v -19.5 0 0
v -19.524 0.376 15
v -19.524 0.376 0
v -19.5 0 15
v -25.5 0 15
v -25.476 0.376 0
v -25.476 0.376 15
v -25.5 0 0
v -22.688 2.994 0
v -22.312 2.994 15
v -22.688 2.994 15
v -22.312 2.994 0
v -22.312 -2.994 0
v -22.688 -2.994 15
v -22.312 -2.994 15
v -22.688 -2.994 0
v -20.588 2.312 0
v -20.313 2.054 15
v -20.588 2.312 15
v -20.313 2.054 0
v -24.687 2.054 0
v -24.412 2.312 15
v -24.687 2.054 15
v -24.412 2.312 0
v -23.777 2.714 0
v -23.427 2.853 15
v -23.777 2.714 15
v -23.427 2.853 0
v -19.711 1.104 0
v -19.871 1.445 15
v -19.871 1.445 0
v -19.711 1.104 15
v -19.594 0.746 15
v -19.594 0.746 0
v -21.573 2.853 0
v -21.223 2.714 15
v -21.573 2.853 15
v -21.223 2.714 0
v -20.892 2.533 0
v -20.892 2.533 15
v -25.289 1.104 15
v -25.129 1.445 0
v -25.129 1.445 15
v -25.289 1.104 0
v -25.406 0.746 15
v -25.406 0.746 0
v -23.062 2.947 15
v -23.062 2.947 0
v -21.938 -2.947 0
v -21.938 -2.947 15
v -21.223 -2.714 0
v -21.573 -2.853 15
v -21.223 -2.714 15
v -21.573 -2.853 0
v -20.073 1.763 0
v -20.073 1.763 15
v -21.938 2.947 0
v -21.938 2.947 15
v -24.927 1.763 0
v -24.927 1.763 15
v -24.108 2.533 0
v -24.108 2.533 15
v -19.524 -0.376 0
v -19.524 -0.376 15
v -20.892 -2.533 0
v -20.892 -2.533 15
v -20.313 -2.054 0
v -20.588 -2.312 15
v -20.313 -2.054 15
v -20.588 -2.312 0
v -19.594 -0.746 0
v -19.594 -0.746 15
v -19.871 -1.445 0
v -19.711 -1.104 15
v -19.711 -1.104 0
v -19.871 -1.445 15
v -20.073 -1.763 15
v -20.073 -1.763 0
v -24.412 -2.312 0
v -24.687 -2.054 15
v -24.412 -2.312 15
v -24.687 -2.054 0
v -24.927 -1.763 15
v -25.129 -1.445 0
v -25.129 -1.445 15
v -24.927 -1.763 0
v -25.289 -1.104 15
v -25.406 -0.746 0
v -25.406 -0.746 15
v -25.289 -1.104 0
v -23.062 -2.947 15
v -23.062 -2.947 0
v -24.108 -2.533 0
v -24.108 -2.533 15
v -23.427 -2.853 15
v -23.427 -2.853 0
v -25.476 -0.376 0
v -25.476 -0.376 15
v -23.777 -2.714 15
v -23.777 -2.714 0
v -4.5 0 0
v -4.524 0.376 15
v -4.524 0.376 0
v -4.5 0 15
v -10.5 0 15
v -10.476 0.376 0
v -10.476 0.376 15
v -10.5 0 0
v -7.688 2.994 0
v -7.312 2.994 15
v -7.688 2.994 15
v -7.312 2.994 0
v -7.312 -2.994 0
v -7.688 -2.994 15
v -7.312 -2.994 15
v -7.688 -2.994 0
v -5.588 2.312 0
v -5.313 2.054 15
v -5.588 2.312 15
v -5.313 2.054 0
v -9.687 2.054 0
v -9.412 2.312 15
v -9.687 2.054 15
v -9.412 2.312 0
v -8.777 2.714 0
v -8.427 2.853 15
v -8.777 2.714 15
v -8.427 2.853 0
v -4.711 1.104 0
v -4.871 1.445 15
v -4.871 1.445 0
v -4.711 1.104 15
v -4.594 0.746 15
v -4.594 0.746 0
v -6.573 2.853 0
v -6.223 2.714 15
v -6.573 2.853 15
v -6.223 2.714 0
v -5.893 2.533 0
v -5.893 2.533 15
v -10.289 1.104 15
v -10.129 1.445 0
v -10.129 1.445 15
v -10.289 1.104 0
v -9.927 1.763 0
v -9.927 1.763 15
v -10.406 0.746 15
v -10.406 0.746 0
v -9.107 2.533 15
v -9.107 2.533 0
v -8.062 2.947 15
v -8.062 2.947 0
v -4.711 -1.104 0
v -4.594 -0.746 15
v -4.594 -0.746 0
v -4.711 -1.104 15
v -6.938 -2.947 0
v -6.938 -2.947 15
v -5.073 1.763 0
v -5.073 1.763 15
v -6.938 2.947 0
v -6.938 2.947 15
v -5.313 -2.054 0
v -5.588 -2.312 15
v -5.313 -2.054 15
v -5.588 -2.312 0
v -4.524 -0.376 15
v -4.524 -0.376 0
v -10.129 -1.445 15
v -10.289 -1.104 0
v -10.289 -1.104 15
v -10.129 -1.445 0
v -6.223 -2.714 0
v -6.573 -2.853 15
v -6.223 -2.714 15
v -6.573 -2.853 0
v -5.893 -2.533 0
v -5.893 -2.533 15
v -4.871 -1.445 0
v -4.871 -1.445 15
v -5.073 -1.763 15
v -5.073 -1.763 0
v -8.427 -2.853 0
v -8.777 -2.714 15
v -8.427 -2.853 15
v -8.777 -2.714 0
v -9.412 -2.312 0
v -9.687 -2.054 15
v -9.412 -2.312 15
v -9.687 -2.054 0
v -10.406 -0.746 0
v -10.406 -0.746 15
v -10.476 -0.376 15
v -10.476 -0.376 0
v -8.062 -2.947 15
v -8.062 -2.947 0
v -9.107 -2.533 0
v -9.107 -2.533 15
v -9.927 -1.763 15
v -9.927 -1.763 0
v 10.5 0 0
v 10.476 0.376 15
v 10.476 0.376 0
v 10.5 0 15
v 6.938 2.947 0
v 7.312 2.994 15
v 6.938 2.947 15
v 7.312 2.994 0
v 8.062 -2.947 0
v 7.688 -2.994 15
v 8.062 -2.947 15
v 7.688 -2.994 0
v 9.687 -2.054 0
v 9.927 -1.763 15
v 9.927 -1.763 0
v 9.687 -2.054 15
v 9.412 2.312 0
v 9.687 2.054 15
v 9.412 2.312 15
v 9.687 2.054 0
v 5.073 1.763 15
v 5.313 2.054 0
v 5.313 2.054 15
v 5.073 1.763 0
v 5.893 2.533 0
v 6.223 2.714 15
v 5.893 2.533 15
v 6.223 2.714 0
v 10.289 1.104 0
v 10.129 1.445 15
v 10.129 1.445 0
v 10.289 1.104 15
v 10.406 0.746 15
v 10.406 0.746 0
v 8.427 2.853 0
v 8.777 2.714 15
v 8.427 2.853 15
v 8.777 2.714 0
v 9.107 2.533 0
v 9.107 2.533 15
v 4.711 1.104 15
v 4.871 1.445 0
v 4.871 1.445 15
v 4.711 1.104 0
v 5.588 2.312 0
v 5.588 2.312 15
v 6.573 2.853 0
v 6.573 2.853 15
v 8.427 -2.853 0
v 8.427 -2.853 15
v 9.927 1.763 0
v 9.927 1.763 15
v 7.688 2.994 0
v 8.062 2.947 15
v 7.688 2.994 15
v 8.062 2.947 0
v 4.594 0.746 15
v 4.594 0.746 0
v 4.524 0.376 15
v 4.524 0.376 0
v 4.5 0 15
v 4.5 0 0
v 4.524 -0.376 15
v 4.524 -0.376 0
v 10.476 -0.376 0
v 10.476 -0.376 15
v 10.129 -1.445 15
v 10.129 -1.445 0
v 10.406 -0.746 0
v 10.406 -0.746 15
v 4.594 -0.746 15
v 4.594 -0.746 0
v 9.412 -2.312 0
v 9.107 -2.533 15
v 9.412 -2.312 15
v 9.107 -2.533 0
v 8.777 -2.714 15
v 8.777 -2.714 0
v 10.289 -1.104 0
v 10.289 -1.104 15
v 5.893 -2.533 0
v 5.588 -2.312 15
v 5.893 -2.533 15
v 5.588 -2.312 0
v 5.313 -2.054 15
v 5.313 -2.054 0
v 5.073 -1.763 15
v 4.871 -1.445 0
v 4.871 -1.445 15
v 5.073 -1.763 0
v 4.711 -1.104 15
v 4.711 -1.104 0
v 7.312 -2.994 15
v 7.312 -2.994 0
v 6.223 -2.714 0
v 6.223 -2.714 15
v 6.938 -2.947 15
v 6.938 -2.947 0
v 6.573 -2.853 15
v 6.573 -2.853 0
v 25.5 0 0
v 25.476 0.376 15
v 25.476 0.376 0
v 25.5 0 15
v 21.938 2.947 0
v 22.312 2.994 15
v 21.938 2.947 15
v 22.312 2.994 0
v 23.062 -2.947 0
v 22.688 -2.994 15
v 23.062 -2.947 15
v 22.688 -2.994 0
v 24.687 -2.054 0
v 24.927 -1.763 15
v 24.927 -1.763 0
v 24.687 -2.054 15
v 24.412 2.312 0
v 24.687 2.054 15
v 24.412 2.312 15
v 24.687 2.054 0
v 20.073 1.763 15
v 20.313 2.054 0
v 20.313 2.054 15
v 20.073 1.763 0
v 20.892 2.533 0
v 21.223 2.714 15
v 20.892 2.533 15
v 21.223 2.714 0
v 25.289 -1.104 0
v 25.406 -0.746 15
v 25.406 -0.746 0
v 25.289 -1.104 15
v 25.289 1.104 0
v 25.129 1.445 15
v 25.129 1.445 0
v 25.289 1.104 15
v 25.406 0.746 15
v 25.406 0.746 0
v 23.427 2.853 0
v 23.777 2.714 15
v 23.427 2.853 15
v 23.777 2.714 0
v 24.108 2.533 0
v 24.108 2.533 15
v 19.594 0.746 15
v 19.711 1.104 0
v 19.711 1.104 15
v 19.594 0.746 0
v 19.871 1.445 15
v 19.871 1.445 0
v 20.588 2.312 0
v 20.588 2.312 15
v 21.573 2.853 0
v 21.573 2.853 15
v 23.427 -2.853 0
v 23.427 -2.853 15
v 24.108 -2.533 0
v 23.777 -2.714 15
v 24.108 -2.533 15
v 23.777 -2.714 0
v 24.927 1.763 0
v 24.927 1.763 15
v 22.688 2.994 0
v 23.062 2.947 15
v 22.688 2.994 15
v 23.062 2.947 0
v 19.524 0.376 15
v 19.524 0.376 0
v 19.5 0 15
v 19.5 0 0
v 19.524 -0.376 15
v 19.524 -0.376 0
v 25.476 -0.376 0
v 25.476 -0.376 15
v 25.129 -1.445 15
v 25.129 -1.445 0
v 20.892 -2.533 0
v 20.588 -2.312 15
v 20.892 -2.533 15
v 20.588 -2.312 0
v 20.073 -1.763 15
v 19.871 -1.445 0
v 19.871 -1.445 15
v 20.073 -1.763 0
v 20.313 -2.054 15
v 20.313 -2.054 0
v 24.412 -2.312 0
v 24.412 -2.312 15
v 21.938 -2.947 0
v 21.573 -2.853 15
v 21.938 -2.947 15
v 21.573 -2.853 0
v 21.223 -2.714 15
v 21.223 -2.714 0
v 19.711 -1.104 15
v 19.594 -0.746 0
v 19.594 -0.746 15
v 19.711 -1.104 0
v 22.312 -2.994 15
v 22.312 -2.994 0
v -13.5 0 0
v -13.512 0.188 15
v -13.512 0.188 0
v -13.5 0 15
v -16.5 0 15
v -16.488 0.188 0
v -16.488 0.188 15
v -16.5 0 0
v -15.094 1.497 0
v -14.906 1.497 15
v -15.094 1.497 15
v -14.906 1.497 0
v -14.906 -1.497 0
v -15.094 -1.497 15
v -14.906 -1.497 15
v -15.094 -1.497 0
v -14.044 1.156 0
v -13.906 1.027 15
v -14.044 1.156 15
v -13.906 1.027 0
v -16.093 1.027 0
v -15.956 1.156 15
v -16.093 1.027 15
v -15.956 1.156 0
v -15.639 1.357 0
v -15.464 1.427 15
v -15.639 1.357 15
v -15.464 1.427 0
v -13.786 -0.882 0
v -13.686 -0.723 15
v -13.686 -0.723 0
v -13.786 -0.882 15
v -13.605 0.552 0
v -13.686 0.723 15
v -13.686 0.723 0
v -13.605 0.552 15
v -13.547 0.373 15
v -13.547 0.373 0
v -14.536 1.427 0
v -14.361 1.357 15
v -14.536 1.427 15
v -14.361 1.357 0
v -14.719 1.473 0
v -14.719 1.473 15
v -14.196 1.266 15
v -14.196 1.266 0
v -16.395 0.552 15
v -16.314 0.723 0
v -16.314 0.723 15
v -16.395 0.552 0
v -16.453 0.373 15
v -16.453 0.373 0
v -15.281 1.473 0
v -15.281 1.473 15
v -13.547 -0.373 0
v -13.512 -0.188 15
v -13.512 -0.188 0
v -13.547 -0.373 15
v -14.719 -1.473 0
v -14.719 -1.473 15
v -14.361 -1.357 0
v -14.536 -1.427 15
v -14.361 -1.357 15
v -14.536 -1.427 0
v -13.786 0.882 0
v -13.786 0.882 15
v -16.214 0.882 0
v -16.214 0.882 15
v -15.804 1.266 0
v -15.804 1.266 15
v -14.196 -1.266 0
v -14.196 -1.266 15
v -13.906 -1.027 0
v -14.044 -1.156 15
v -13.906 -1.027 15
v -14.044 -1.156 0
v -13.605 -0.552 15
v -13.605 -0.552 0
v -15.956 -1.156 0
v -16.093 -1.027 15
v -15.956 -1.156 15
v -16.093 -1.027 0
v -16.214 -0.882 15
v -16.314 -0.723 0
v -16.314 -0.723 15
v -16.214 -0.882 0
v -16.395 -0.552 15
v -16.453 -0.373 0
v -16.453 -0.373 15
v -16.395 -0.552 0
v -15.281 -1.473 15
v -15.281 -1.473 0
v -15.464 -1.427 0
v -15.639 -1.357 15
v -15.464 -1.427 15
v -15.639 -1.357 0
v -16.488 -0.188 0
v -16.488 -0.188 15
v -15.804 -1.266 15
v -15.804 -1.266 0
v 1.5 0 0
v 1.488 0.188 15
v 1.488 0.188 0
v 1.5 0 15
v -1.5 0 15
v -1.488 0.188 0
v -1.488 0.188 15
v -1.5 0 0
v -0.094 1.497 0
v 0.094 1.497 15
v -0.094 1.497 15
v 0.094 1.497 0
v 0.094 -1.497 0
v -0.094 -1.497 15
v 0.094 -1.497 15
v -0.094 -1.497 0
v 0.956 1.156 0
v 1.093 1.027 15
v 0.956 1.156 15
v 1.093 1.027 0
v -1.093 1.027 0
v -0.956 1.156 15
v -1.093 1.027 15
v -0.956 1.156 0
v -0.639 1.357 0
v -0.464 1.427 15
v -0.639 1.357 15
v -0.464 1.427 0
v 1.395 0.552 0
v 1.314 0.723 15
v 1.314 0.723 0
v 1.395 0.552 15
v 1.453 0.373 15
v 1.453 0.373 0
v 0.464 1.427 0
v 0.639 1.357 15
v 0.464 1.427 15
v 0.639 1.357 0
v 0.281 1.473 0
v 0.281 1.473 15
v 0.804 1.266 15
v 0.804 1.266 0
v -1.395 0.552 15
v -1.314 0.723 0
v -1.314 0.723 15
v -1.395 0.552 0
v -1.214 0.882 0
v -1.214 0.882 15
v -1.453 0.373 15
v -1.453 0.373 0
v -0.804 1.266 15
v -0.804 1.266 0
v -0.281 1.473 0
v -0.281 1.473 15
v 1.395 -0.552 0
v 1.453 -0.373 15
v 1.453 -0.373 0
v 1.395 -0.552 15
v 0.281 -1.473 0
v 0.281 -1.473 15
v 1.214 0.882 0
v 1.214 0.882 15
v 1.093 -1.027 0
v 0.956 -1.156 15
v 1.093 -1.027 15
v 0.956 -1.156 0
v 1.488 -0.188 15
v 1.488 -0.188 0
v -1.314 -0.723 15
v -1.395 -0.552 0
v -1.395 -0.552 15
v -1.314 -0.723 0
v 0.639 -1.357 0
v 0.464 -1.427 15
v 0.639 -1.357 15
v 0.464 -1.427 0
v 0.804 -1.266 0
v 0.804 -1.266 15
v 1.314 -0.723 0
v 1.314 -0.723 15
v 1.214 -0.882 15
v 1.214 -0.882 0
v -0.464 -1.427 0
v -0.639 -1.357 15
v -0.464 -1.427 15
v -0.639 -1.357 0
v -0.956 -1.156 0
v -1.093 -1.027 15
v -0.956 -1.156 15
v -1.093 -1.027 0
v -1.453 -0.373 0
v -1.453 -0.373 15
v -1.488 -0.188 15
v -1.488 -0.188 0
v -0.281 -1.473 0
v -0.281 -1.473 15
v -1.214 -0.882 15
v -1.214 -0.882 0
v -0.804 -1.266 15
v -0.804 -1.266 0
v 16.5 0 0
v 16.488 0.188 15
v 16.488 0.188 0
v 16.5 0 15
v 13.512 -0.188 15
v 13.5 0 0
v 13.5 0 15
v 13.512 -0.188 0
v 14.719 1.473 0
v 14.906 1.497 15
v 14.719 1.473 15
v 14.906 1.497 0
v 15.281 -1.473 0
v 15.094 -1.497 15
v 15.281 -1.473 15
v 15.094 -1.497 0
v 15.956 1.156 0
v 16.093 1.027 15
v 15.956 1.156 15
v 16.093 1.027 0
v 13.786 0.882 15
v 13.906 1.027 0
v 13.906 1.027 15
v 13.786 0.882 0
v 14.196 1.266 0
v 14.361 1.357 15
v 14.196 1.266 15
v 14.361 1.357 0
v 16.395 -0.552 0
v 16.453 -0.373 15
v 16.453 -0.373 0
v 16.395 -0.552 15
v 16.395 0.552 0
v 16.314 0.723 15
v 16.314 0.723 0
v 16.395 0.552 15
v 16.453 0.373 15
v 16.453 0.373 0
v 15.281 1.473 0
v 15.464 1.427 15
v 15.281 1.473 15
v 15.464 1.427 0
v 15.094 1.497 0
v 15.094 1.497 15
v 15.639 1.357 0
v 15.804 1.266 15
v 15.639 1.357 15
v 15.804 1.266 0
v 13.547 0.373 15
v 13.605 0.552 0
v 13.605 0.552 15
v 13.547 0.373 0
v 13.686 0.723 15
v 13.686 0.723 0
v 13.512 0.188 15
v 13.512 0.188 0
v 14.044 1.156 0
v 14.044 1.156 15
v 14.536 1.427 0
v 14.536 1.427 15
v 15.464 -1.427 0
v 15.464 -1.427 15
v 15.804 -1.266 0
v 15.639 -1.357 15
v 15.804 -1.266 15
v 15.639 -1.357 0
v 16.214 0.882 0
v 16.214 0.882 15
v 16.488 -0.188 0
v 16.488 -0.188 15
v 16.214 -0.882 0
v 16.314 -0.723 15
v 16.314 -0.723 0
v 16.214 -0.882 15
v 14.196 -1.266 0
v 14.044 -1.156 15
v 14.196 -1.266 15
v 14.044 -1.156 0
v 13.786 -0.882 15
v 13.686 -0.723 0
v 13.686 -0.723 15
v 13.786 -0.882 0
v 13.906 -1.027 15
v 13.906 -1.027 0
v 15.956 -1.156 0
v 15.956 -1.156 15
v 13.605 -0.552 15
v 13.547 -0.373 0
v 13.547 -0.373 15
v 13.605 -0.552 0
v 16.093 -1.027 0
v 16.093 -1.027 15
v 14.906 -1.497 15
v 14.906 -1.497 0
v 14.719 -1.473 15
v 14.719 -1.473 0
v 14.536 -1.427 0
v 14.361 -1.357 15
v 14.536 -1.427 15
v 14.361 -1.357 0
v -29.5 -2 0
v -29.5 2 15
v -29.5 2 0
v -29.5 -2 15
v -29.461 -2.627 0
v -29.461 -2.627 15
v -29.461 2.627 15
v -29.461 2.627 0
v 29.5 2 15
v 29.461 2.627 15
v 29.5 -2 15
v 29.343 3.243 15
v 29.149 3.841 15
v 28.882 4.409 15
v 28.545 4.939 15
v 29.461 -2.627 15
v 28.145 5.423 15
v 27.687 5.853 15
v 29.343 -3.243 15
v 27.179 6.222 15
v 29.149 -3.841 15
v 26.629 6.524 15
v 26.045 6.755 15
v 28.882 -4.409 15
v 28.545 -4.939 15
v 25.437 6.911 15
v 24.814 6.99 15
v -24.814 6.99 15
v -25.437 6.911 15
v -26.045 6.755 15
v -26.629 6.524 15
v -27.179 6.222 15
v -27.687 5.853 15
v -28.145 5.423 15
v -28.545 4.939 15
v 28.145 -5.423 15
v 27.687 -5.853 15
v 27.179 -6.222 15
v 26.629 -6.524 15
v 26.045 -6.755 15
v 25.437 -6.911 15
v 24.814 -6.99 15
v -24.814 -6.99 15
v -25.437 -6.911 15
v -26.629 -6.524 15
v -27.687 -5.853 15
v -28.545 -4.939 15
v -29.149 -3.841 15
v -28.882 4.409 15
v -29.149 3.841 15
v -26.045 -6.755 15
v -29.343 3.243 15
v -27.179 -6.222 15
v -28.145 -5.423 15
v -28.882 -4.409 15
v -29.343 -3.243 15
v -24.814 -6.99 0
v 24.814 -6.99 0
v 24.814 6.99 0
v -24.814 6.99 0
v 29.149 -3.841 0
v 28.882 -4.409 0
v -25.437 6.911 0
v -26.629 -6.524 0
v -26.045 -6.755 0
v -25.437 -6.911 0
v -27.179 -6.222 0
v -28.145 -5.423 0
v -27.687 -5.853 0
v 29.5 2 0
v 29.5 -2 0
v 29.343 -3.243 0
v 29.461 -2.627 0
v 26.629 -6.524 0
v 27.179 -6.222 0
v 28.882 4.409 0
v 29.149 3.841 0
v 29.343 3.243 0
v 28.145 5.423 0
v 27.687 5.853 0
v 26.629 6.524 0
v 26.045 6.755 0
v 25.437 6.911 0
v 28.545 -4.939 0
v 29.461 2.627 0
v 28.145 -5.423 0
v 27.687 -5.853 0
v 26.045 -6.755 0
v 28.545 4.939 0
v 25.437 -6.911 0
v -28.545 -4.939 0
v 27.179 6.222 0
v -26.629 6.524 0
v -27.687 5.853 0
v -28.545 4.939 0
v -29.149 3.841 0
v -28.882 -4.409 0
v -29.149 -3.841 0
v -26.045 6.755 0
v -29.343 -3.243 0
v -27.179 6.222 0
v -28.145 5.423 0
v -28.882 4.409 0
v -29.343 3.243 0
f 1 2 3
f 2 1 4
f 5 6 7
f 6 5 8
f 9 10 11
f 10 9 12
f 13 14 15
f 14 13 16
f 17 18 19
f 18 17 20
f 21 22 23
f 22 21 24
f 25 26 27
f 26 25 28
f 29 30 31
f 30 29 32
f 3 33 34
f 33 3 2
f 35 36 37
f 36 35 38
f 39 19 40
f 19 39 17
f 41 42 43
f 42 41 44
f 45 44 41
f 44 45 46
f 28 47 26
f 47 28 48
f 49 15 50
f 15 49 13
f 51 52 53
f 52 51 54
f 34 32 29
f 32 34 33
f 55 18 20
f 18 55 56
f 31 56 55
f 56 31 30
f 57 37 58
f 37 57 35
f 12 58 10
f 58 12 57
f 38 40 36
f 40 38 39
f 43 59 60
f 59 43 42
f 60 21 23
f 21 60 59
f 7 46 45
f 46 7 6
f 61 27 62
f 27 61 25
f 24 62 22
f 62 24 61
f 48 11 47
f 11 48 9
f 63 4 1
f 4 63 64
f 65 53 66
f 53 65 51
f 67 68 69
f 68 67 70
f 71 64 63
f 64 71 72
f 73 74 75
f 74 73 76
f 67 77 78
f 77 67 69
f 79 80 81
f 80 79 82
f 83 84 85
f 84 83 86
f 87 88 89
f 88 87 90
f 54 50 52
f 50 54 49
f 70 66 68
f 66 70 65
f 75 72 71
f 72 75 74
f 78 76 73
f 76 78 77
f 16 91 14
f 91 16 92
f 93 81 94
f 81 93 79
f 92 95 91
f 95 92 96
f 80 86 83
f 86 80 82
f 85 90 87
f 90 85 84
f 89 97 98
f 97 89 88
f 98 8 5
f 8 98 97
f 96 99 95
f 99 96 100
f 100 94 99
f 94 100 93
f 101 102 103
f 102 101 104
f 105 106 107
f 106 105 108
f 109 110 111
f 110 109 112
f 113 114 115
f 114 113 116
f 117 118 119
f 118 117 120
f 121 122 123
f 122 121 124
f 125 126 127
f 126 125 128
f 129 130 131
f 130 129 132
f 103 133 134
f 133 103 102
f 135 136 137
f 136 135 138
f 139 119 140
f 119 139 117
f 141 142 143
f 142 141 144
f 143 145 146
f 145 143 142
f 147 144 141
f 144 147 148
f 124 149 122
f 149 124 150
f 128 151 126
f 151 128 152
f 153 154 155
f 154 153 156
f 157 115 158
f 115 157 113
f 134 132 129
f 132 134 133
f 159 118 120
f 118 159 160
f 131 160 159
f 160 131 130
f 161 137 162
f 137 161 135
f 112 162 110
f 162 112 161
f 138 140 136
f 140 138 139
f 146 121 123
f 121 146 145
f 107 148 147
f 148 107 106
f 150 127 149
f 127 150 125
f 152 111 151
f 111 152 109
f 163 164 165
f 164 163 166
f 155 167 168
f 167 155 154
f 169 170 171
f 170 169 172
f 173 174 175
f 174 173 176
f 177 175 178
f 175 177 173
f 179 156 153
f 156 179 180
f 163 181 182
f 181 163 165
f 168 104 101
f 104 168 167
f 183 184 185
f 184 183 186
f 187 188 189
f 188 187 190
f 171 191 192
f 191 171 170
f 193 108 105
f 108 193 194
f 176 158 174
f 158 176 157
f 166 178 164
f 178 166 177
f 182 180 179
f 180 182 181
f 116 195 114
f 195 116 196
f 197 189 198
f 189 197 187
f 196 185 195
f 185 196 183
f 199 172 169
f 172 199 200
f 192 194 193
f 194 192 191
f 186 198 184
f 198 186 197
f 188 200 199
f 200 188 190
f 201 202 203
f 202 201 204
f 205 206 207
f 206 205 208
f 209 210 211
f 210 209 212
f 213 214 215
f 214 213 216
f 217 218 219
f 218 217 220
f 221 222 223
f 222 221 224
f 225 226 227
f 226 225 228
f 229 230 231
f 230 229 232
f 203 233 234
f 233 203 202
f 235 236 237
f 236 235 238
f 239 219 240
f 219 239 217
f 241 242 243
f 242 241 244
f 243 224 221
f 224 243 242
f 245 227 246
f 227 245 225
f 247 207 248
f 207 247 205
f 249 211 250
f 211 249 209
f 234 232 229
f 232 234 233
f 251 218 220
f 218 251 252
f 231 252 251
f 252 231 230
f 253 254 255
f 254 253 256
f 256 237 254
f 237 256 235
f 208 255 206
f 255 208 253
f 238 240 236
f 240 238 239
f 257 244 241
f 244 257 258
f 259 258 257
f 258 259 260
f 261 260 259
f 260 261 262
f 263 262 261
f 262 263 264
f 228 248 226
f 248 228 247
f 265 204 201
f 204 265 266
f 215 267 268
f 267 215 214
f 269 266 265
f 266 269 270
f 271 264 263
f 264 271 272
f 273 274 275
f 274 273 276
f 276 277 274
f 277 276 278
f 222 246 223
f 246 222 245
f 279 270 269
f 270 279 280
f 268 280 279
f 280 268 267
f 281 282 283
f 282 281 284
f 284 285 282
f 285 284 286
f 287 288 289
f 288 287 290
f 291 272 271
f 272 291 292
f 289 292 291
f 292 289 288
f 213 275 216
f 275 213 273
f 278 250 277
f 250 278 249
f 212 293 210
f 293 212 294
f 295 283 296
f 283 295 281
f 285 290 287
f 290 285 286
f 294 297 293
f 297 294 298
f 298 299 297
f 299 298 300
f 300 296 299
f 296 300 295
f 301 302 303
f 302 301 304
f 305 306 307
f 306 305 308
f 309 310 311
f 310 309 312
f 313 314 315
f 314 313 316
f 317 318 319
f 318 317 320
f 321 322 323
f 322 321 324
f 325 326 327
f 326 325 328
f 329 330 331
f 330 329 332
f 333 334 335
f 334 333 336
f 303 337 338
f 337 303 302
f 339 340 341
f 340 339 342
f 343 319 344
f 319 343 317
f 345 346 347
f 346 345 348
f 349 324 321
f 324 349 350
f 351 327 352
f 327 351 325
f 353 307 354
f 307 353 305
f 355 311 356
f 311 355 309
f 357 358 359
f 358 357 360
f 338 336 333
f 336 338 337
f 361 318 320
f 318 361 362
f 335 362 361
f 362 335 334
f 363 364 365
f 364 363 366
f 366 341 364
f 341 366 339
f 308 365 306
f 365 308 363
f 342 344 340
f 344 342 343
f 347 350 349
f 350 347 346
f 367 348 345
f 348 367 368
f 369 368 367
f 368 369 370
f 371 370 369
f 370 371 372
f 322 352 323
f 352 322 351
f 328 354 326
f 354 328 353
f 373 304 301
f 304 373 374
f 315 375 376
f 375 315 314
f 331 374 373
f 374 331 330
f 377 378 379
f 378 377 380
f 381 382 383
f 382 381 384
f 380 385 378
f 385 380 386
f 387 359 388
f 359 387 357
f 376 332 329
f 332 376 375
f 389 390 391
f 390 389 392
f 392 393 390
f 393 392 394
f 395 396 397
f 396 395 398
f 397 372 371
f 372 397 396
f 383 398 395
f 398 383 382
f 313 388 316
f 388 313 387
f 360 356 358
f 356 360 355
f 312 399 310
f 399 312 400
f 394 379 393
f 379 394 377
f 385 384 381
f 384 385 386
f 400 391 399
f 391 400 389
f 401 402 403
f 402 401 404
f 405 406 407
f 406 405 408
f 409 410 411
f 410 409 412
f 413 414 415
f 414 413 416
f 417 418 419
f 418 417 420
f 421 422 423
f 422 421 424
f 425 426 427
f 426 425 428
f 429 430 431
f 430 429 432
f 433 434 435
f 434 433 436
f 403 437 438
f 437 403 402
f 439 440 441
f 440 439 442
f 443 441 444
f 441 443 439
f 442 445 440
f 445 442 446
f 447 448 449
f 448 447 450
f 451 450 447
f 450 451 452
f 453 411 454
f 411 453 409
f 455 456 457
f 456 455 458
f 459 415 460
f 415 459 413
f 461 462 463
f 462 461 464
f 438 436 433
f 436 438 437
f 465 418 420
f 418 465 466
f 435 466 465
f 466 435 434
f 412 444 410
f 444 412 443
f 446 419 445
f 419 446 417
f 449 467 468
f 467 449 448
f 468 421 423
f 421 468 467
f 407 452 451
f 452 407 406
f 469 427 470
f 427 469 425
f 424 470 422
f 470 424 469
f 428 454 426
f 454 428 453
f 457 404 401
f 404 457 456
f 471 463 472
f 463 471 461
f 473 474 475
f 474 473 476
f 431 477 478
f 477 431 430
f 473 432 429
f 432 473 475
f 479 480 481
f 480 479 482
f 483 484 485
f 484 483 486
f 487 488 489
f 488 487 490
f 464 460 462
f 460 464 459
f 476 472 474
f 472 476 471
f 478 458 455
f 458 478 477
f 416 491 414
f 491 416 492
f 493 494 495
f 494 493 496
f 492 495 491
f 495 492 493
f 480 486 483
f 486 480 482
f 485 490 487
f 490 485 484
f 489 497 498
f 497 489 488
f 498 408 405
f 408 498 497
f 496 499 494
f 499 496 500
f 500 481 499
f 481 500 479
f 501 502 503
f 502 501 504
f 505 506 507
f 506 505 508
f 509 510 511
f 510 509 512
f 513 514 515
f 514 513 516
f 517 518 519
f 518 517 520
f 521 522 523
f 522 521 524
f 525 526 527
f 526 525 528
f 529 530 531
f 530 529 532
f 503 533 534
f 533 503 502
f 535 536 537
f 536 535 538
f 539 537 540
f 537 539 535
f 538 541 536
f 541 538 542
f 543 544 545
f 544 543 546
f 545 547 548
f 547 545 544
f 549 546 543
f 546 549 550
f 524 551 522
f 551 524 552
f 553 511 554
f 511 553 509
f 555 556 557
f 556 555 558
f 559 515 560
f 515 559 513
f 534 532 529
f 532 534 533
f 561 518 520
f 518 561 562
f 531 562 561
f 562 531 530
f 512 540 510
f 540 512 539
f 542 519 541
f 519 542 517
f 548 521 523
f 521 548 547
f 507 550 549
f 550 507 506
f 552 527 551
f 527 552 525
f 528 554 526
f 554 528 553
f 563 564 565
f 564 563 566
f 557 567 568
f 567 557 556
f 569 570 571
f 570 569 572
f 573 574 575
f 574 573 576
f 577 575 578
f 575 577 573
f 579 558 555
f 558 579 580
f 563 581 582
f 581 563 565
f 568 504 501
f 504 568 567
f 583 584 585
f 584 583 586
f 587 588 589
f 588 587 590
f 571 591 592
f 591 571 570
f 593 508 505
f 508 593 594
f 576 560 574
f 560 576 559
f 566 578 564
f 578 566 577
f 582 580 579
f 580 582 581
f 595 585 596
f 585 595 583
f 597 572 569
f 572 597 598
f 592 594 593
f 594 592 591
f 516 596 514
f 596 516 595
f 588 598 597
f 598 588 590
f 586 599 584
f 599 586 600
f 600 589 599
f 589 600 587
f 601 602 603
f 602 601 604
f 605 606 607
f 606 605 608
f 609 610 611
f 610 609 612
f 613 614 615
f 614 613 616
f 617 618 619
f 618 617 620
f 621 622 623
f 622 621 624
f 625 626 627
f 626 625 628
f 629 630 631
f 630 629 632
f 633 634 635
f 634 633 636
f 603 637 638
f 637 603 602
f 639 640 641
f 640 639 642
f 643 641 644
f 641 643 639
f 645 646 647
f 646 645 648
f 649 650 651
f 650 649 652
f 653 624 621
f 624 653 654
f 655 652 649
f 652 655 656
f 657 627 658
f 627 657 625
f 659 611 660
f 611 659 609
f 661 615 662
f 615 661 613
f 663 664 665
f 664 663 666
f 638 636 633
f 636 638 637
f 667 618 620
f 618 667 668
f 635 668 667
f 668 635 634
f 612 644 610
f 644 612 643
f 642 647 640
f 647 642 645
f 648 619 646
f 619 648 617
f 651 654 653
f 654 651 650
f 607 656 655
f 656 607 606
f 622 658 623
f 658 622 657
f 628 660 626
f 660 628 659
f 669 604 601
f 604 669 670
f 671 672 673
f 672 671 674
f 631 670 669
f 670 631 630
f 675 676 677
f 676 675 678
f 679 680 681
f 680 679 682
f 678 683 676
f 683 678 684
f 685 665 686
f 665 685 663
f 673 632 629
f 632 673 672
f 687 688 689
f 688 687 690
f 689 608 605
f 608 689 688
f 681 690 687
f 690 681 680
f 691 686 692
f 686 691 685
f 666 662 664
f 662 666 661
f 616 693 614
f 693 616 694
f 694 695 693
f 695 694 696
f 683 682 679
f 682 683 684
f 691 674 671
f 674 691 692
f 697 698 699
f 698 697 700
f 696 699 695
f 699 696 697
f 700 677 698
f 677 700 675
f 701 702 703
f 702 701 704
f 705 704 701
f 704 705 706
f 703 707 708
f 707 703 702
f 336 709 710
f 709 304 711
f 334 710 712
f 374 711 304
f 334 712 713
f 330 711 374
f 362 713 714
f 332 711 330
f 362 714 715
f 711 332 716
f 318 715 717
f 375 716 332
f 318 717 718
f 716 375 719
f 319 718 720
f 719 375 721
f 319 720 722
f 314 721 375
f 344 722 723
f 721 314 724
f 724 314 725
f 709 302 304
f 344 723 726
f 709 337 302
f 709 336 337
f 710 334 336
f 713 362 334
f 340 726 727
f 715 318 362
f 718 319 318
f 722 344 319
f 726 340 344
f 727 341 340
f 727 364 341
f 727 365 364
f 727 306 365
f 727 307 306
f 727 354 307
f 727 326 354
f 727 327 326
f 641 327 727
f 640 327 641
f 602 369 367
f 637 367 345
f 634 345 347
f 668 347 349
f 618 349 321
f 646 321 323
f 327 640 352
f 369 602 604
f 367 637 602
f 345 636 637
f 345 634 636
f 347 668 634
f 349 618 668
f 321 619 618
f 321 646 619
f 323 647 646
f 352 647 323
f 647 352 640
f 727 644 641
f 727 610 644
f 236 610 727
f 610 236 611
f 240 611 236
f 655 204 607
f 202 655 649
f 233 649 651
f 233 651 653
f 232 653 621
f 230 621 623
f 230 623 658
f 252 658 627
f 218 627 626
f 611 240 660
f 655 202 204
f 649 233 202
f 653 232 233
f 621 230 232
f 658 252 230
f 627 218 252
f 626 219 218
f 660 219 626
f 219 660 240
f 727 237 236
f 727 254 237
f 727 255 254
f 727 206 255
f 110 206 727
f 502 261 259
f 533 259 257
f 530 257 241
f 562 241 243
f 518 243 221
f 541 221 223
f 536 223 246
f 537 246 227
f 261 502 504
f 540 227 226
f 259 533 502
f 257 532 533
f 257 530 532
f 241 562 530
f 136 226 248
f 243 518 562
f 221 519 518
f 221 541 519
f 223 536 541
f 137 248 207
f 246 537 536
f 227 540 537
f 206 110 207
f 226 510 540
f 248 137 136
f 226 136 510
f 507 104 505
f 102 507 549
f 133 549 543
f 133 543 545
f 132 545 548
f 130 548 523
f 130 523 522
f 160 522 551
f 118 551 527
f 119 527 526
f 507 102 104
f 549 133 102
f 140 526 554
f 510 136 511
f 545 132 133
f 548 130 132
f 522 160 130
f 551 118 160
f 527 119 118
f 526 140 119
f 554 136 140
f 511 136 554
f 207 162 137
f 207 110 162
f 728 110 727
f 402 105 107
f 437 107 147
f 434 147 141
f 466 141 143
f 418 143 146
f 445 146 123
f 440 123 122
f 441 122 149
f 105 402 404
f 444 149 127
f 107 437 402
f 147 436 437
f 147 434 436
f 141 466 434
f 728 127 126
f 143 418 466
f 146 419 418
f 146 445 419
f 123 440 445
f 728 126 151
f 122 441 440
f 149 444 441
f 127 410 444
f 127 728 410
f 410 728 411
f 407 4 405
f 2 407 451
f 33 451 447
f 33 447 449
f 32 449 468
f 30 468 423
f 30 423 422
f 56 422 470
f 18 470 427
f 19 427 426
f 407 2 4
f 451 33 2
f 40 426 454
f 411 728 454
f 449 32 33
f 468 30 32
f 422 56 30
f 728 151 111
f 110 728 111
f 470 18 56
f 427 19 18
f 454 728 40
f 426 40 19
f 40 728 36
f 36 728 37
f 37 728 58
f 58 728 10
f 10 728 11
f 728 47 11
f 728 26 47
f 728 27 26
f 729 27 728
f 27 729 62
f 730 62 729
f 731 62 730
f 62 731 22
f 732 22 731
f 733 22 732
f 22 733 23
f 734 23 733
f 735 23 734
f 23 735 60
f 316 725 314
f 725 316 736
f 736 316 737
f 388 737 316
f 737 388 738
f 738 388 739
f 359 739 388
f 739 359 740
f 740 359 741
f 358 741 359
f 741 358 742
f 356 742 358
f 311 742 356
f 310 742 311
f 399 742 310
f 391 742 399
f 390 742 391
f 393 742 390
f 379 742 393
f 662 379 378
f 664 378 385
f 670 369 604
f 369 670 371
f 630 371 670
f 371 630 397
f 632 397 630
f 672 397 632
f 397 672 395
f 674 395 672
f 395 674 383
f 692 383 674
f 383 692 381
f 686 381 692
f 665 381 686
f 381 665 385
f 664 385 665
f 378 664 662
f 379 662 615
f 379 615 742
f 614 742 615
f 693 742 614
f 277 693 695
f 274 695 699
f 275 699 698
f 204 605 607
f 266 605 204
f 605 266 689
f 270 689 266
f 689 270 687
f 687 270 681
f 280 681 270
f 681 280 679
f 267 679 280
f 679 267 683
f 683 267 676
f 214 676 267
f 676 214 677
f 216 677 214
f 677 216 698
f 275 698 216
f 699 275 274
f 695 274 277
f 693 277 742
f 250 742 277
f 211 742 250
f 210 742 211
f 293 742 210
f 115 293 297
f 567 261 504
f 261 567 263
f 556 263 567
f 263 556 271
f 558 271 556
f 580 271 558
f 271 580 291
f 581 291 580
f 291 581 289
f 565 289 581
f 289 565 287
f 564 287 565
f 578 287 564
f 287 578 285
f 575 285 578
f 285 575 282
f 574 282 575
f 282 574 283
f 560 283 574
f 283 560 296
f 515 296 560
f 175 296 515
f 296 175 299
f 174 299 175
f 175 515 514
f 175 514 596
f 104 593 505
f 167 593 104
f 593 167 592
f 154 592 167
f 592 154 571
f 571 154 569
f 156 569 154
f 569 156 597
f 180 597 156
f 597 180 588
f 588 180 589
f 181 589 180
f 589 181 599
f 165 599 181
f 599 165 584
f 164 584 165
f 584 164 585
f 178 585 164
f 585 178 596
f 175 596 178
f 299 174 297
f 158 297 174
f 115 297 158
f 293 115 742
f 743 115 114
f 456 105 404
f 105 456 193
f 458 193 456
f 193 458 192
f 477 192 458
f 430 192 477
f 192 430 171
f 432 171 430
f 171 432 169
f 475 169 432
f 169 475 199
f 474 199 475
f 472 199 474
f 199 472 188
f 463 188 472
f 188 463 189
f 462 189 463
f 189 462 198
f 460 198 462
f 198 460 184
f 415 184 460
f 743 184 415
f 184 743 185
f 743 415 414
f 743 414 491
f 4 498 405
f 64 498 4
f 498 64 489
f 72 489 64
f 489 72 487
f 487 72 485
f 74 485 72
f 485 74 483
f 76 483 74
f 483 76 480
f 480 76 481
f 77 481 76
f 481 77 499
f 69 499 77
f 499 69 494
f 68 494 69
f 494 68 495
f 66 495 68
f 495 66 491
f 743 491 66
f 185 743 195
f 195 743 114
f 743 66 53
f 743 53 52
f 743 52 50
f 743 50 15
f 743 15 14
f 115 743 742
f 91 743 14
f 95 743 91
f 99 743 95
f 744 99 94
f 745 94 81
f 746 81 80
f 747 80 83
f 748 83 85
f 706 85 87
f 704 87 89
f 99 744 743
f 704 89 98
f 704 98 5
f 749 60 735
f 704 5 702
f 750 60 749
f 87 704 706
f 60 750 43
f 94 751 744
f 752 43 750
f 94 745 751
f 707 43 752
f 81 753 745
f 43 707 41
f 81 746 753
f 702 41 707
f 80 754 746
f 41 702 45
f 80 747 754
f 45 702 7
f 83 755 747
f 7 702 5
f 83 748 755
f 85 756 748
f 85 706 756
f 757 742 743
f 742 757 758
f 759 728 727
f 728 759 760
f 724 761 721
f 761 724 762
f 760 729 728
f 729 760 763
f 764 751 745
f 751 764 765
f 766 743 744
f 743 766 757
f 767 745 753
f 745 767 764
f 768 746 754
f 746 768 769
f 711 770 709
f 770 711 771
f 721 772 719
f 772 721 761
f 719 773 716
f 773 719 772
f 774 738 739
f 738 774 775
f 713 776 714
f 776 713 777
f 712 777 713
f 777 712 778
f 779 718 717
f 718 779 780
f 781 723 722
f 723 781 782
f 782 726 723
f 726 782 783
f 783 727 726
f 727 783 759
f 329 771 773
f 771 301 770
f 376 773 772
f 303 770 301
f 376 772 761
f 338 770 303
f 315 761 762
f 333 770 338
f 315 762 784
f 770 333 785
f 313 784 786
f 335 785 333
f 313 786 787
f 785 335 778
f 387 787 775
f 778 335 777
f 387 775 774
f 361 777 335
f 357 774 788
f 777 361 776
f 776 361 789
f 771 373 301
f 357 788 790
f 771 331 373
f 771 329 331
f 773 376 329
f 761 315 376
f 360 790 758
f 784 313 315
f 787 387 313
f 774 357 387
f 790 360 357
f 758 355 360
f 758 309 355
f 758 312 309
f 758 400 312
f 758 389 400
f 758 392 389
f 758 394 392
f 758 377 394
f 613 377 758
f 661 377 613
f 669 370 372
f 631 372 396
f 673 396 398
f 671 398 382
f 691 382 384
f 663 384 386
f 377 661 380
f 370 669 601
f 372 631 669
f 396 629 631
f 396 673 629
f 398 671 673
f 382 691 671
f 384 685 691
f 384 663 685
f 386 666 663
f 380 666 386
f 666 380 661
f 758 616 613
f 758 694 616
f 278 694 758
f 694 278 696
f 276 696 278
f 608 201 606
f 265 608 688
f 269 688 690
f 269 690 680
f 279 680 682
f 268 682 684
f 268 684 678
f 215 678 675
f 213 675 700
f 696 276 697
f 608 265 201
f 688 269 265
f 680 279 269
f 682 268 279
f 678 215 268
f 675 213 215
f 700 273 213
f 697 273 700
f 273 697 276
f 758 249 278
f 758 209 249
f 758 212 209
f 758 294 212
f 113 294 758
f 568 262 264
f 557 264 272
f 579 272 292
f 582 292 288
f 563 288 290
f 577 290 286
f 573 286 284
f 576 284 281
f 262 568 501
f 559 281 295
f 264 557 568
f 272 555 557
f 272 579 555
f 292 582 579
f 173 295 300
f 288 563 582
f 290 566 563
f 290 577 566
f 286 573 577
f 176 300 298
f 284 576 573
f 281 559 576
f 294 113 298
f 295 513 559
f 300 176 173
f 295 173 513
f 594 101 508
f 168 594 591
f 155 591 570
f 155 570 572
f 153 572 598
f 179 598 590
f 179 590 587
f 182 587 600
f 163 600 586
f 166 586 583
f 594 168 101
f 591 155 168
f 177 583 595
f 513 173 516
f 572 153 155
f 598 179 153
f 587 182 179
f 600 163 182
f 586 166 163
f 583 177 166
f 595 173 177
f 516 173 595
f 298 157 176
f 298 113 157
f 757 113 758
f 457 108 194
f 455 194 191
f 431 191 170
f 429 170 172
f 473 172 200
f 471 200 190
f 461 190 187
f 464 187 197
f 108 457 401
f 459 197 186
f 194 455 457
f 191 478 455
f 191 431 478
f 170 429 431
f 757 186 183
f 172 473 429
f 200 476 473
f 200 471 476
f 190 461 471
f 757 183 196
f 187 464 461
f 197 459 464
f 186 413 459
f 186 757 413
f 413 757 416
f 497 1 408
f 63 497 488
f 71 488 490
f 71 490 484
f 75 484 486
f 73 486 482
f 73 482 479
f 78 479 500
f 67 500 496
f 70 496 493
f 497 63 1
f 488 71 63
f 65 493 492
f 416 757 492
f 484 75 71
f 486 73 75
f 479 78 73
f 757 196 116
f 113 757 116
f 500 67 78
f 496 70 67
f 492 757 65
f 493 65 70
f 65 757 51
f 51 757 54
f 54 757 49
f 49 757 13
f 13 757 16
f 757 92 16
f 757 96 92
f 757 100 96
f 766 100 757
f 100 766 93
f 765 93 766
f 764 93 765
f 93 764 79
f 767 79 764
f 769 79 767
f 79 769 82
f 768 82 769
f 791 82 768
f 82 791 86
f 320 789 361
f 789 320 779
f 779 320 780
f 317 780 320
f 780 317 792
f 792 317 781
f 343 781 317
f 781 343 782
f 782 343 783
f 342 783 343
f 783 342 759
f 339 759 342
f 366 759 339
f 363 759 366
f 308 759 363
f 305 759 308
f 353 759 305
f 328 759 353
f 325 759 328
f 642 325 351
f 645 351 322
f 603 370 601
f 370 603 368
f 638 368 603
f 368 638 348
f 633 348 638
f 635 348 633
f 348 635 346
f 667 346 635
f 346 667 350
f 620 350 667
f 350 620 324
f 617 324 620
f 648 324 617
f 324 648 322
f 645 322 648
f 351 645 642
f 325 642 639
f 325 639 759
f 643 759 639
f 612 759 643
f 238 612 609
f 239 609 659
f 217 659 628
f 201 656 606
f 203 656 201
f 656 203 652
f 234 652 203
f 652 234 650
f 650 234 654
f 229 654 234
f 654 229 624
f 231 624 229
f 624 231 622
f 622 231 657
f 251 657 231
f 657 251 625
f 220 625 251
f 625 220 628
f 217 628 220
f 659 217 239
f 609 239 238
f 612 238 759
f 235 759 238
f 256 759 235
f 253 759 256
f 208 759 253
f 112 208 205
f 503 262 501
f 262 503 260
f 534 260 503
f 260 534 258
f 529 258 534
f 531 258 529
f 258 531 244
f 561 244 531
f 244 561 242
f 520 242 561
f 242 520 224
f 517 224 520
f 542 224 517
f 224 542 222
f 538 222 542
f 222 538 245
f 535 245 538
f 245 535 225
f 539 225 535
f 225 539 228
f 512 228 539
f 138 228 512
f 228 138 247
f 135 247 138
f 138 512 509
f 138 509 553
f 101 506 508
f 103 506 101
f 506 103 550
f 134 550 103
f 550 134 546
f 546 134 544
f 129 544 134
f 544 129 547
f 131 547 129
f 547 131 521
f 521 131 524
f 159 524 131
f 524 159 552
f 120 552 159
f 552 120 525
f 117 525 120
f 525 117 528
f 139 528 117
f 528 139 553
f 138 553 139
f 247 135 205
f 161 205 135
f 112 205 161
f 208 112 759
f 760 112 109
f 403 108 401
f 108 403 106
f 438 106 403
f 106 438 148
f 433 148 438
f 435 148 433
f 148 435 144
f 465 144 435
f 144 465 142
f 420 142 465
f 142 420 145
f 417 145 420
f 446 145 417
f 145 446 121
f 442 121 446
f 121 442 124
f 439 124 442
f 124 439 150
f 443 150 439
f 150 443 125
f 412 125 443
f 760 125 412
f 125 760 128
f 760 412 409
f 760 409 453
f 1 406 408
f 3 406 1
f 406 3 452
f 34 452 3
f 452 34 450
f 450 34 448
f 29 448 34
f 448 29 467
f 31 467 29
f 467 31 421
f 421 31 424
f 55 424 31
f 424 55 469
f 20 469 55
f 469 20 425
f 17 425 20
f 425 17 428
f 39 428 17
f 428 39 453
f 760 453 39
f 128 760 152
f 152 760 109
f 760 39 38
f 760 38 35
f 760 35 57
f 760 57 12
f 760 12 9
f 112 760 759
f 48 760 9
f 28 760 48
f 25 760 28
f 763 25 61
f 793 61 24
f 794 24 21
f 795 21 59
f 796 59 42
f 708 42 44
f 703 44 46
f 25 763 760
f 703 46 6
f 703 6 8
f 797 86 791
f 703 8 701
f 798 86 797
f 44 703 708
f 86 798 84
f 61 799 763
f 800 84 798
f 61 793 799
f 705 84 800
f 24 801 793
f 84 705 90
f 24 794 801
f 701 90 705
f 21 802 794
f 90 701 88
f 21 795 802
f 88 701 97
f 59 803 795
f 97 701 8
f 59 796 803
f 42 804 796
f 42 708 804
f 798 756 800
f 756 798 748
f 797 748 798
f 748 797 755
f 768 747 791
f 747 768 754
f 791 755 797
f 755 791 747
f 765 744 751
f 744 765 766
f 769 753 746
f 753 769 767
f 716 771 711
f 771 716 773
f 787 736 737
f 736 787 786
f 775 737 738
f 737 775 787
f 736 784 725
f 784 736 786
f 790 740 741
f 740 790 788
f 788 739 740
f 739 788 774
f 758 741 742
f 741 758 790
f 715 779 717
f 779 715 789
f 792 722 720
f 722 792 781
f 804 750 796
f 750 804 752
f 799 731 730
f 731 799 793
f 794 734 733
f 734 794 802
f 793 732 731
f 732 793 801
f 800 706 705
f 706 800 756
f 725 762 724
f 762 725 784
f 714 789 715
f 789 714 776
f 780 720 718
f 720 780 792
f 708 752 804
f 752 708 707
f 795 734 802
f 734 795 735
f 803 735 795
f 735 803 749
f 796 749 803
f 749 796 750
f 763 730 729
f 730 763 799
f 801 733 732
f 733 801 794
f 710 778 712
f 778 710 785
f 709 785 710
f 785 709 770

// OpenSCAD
$fn = 50;


difference() {
	union() {
		translate(v = [0, 0, 0]) {
			rotate(a = [0, 0, 0]) {
				hull() {
					translate(v = [-24.5000000000, 2.0000000000, 0]) {
						rotate(a = [0, 0, 0]) {
							translate(v = [0, 0, 0]) {
								rotate(a = [0, 0, 0]) {
									cylinder(h = 15, r = 5);
								}
							}
						}
					}
					translate(v = [24.5000000000, 2.0000000000, 0]) {
						rotate(a = [0, 0, 0]) {
							translate(v = [0, 0, 0]) {
								rotate(a = [0, 0, 0]) {
									cylinder(h = 15, r = 5);
								}
							}
						}
					}
					translate(v = [-24.5000000000, -2.0000000000, 0]) {
						rotate(a = [0, 0, 0]) {
							translate(v = [0, 0, 0]) {
								rotate(a = [0, 0, 0]) {
									cylinder(h = 15, r = 5);
								}
							}
						}
					}
					translate(v = [24.5000000000, -2.0000000000, 0]) {
						rotate(a = [0, 0, 0]) {
							translate(v = [0, 0, 0]) {
								rotate(a = [0, 0, 0]) {
									cylinder(h = 15, r = 5);
								}
							}
						}
					}
				}
			}
		}
	}
	union() {
		translate(v = [-22.5000000000, 0.0000000000, 0]) {
			rotate(a = [0, 0, 0]) {
				translate(v = [0, 0, -50]) {
					rotate(a = [0, 0, 0]) {
						cylinder(h = 100, r = 3.0000000000);
					}
				}
			}
		}
		translate(v = [-7.5000000000, 0.0000000000, 0]) {
			rotate(a = [0, 0, 0]) {
				translate(v = [0, 0, -50]) {
					rotate(a = [0, 0, 0]) {
						cylinder(h = 100, r = 3.0000000000);
					}
				}
			}
		}
		translate(v = [7.5000000000, 0.0000000000, 0]) {
			rotate(a = [0, 0, 0]) {
				translate(v = [0, 0, -50]) {
					rotate(a = [0, 0, 0]) {
						cylinder(h = 100, r = 3.0000000000);
					}
				}
			}
		}
		translate(v = [22.5000000000, 0.0000000000, 0]) {
			rotate(a = [0, 0, 0]) {
				translate(v = [0, 0, -50]) {
					rotate(a = [0, 0, 0]) {
						cylinder(h = 100, r = 3.0000000000);
					}
				}
			}
		}
		translate(v = [-22.5000000000, 0.0000000000, 0]) {
			rotate(a = [0, 0, 0]) {
				translate(v = [0, 0, -50]) {
					rotate(a = [0, 0, 0]) {
						cylinder(h = 100, r = 1.5000000000);
					}
				}
			}
		}
		translate(v = [-15.0000000000, 0.0000000000, 0]) {
			rotate(a = [0, 0, 0]) {
				translate(v = [0, 0, -50]) {
					rotate(a = [0, 0, 0]) {
						cylinder(h = 100, r = 1.5000000000);
					}
				}
			}
		}
		translate(v = [-7.5000000000, 0.0000000000, 0]) {
			rotate(a = [0, 0, 0]) {
				translate(v = [0, 0, -50]) {
					rotate(a = [0, 0, 0]) {
						cylinder(h = 100, r = 1.5000000000);
					}
				}
			}
		}
		translate(v = [0.0000000000, 0.0000000000, 0]) {
			rotate(a = [0, 0, 0]) {
				translate(v = [0, 0, -50]) {
					rotate(a = [0, 0, 0]) {
						cylinder(h = 100, r = 1.5000000000);
					}
				}
			}
		}
		translate(v = [7.5000000000, 0.0000000000, 0]) {
			rotate(a = [0, 0, 0]) {
				translate(v = [0, 0, -50]) {
					rotate(a = [0, 0, 0]) {
						cylinder(h = 100, r = 1.5000000000);
					}
				}
			}
		}
		translate(v = [15.0000000000, 0.0000000000, 0]) {
			rotate(a = [0, 0, 0]) {
				translate(v = [0, 0, -50]) {
					rotate(a = [0, 0, 0]) {
						cylinder(h = 100, r = 1.5000000000);
					}
				}
			}
		}
		translate(v = [22.5000000000, 0.0000000000, 0]) {
			rotate(a = [0, 0, 0]) {
				translate(v = [0, 0, -50]) {
					rotate(a = [0, 0, 0]) {
						cylinder(h = 100, r = 1.5000000000);
					}
				}
			}
		}
	}
}
